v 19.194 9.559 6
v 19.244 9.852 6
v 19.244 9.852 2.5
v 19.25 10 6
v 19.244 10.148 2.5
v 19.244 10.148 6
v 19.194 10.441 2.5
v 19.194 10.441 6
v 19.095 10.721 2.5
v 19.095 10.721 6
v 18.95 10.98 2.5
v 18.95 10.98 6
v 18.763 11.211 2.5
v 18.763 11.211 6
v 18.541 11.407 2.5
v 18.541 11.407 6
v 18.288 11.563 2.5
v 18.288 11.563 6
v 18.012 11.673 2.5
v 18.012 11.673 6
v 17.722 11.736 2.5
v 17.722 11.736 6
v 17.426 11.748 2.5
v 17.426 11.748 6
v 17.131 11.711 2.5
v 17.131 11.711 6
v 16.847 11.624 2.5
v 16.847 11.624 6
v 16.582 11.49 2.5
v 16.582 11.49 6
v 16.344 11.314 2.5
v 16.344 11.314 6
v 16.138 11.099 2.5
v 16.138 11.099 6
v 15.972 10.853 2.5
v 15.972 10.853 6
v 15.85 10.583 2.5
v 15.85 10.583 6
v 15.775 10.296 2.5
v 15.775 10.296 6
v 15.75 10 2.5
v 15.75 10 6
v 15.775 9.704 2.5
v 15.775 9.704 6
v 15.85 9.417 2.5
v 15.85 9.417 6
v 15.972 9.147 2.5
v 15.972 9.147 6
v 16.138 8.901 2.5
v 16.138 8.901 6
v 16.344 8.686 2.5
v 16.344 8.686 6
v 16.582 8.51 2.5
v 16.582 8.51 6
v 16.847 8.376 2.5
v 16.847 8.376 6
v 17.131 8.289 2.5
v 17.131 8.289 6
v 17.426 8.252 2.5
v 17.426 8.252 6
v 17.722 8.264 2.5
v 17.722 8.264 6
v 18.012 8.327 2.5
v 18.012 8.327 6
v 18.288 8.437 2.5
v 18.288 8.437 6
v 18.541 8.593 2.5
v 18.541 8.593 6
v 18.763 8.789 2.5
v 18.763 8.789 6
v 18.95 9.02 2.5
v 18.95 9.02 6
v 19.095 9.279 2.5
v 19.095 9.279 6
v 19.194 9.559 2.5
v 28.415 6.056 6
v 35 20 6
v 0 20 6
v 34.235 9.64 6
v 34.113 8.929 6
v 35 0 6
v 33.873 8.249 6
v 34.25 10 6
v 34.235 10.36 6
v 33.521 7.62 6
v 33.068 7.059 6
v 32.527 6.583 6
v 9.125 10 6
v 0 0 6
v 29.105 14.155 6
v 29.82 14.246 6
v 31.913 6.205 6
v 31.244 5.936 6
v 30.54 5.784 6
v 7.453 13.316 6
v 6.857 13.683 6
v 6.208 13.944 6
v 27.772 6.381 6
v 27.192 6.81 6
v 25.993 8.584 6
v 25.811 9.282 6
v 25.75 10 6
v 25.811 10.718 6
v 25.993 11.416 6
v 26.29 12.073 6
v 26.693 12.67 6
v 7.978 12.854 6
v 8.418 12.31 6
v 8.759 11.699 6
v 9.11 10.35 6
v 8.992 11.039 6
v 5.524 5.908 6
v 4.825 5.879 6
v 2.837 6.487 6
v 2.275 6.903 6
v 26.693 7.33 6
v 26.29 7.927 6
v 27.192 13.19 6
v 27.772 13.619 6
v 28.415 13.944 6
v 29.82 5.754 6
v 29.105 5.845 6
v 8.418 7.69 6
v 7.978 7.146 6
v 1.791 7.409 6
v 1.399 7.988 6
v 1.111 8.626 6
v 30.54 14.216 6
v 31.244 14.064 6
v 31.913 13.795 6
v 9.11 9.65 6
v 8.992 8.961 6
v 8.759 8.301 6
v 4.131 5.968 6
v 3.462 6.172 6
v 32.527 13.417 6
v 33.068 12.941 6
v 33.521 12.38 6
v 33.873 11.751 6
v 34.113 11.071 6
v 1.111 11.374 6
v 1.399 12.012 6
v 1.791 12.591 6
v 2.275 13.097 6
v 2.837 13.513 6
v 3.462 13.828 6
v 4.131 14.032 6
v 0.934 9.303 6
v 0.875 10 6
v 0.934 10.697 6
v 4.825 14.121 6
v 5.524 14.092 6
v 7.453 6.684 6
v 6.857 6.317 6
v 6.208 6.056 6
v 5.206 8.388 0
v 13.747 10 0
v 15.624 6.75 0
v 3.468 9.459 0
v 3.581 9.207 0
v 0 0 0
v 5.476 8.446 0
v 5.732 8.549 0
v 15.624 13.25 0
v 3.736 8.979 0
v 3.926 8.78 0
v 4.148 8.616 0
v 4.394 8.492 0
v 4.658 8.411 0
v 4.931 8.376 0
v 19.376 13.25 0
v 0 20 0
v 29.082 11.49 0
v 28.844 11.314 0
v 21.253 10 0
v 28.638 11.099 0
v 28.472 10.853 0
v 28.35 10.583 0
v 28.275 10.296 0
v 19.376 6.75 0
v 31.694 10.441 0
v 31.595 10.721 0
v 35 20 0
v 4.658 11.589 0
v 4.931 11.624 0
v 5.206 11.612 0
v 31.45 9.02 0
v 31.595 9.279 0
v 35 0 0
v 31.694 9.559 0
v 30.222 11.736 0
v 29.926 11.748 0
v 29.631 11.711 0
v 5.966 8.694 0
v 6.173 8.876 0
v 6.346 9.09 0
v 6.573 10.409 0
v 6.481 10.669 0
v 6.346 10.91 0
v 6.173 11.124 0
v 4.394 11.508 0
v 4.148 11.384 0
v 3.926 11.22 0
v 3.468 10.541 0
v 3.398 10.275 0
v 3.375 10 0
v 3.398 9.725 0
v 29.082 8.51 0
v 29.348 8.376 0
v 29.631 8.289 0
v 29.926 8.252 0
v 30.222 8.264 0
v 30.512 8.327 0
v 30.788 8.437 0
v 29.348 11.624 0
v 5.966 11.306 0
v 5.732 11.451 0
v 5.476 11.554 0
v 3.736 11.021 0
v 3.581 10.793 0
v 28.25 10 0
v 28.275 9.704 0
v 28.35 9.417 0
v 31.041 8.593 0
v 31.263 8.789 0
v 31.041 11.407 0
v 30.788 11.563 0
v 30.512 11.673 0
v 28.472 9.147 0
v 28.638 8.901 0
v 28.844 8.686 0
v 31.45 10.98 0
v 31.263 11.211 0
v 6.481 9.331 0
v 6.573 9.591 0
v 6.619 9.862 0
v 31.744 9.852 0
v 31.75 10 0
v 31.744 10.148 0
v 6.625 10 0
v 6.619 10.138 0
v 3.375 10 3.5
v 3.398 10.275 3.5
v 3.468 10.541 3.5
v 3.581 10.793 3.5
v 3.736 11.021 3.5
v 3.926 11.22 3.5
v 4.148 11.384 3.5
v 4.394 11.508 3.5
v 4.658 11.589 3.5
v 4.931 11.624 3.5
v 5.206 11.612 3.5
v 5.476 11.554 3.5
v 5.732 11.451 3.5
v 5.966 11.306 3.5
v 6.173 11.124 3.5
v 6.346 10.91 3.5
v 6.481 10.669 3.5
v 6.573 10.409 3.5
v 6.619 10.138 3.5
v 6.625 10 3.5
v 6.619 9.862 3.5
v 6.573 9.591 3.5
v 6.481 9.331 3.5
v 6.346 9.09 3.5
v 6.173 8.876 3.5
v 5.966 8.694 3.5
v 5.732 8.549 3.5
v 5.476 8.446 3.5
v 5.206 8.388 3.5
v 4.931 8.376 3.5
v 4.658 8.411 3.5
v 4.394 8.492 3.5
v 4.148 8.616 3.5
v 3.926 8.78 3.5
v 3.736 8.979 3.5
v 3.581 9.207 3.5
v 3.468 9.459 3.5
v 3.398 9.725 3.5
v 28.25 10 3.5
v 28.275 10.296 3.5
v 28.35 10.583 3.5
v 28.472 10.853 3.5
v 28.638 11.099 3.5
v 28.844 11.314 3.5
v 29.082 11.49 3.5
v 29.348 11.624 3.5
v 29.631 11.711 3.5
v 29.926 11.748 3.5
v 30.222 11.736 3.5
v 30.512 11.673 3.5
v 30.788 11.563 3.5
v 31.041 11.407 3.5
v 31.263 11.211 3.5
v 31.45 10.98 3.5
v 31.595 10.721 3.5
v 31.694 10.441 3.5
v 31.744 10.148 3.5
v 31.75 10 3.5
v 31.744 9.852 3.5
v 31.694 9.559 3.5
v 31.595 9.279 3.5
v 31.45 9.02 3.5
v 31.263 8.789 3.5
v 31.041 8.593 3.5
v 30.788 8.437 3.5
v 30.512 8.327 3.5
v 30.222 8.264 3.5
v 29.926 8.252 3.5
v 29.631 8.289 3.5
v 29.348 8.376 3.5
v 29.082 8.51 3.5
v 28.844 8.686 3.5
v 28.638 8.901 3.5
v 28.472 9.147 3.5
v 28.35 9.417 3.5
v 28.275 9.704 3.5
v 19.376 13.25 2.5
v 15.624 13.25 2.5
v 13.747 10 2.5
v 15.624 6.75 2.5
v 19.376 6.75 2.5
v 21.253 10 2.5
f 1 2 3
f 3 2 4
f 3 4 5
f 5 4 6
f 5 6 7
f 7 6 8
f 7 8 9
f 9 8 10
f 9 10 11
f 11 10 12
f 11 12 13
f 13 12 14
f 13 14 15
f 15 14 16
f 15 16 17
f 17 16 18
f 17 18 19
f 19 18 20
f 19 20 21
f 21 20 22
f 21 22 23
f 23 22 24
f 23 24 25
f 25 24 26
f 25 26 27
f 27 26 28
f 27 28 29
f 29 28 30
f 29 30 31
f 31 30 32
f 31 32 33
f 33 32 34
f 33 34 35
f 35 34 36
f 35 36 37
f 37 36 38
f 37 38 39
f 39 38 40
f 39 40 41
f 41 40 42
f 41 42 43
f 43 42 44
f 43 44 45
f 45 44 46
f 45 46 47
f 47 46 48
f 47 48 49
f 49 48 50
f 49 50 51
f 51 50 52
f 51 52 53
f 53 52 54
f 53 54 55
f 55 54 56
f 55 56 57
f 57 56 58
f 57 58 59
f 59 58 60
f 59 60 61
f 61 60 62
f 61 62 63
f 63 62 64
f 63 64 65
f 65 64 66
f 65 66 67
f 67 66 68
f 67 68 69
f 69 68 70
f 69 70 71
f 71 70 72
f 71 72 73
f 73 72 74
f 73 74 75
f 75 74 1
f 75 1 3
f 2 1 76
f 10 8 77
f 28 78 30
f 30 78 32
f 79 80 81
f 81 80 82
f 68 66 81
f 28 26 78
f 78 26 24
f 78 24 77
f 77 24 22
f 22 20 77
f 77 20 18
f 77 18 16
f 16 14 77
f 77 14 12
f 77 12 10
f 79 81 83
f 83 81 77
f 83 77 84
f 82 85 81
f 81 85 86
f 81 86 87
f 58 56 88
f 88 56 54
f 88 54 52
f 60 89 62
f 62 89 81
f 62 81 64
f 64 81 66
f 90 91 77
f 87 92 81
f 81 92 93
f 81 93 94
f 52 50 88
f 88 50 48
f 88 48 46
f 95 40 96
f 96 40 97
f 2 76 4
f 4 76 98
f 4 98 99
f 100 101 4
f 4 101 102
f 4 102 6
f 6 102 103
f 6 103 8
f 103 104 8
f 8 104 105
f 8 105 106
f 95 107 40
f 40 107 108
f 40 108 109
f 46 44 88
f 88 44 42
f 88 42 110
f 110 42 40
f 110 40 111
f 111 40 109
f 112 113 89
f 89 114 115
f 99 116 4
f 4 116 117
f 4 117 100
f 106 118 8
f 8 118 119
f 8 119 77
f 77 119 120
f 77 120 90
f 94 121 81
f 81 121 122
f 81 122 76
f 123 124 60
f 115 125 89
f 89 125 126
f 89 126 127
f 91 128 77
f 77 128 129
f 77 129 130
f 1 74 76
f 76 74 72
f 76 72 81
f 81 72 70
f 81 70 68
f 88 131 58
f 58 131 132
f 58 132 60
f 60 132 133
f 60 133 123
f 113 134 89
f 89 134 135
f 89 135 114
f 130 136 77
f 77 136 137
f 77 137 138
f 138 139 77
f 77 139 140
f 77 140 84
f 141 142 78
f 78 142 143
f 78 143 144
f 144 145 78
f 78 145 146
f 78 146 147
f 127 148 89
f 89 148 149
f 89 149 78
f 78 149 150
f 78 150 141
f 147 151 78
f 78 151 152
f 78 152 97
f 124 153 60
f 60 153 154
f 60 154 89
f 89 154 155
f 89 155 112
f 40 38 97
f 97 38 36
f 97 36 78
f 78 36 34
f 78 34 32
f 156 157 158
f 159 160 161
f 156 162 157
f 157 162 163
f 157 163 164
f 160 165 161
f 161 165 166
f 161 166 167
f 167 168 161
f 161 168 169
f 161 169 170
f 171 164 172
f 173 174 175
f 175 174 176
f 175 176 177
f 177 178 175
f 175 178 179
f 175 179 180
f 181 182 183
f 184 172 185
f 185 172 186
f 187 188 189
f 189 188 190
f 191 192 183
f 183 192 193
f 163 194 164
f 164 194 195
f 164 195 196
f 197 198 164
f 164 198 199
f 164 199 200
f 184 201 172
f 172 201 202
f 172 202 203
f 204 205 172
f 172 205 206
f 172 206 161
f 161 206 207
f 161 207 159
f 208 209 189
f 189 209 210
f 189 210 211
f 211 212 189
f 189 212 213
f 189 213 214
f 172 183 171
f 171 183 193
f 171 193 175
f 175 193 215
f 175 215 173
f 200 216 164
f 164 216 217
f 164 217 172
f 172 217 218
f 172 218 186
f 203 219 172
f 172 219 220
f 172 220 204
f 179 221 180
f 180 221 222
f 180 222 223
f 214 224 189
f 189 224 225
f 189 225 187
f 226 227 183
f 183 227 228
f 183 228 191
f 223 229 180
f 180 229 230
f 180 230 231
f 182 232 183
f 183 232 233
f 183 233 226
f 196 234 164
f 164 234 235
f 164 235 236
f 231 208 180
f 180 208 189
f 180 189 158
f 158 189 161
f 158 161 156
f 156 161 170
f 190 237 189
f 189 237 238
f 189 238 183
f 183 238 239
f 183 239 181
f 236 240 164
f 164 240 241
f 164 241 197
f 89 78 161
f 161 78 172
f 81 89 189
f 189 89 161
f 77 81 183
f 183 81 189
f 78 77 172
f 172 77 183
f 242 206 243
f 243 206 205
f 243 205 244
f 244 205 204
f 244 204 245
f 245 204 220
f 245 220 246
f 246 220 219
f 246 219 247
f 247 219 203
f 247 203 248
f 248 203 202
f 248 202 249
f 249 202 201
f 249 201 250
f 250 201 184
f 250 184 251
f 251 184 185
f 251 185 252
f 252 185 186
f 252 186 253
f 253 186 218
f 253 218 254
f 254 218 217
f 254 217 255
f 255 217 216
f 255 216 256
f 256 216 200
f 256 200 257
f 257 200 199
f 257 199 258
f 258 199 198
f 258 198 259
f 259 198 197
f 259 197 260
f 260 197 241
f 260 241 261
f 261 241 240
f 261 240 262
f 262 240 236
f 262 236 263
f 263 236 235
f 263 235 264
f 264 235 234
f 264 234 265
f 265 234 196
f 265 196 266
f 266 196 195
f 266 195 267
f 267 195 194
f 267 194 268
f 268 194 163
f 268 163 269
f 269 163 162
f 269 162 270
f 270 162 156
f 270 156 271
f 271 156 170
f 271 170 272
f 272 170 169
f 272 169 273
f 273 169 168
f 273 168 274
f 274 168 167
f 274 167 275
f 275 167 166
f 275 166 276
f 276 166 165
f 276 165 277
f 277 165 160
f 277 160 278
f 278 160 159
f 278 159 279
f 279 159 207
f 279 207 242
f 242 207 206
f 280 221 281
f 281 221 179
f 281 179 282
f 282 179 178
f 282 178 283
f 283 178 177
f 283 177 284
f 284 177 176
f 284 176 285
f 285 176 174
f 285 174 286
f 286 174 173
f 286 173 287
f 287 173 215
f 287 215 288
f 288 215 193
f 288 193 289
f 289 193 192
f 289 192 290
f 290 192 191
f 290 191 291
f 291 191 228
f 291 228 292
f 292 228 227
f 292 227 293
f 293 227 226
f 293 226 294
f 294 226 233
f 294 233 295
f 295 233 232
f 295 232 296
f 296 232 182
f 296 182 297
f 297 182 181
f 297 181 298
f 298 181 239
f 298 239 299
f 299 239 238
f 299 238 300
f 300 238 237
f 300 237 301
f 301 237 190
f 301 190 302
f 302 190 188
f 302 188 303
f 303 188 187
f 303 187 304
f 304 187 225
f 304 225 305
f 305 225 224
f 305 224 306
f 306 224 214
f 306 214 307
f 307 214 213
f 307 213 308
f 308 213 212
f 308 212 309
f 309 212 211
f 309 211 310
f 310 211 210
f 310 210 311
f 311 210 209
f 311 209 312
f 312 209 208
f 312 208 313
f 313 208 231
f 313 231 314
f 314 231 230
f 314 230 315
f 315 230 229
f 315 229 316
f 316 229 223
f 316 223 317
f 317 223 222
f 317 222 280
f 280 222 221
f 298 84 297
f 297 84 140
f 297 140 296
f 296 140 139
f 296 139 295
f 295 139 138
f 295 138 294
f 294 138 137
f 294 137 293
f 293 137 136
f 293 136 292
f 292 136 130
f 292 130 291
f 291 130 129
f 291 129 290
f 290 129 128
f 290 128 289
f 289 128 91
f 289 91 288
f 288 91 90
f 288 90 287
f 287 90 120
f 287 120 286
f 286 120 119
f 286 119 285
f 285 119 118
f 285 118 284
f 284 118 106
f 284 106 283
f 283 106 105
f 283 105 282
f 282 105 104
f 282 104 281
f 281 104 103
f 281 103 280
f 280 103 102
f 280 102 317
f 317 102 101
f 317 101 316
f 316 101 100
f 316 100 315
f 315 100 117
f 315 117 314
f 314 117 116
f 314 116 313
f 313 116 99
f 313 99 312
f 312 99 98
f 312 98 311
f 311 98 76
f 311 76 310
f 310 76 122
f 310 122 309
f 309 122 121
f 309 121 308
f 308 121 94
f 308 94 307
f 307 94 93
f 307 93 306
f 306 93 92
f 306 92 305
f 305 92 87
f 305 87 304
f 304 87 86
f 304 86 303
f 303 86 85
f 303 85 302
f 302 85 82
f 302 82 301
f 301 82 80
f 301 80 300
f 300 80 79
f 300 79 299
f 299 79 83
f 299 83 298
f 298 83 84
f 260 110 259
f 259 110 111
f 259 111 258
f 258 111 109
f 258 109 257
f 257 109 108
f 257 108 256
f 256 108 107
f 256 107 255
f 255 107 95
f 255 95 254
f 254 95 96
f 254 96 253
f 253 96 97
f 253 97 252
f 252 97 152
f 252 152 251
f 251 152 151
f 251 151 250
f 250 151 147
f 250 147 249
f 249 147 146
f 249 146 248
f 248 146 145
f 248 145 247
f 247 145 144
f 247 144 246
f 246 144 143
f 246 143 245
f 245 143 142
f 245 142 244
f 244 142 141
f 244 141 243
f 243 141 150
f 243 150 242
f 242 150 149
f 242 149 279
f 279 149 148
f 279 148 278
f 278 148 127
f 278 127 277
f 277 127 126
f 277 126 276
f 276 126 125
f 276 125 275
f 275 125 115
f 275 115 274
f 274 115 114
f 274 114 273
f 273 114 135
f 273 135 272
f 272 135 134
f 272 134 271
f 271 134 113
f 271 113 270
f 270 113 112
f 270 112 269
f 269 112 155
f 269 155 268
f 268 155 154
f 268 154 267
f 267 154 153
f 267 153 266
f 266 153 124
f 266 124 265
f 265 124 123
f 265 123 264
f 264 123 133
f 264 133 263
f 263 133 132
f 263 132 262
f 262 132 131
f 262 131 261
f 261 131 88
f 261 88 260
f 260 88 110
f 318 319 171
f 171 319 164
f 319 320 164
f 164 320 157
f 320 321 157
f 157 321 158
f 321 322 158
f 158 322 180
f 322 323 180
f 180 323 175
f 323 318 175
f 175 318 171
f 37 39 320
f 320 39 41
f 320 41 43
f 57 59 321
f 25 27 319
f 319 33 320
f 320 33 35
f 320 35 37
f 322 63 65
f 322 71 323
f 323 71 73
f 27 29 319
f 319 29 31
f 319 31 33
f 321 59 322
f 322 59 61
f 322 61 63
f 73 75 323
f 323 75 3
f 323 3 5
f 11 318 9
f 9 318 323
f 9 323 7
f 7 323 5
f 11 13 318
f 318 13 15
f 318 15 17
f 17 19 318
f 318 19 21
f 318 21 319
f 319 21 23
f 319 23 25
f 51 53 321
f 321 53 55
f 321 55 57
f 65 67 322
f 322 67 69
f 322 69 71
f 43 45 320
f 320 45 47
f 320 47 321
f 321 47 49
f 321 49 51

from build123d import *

# Parameters (mm, degrees)
SKETCH1_W           = 35
SKETCH1_H           = 20
SKETCH1_R           = 1.625
SKETCH1_R_2         = 1.75
BOSS_EXTRUDE1_DEPTH = 6
CHAMFER1_SIZE       = 2.5
CUT_EXTRUDE1_DEPTH  = 2.5


with BuildPart() as part:
    # Sketch1 → Boss-Extrude1 (new body)
    with BuildSketch(Plane.XY):
        with Locations((17.5, 10)):
            Rectangle(SKETCH1_W, SKETCH1_H)
        with Locations((5, 10)):
            Circle(SKETCH1_R, mode=Mode.SUBTRACT)
        with Locations((30, 10)):
            Circle(SKETCH1_R_2, mode=Mode.SUBTRACT)
        with Locations((17.5, 10)):
            Circle(SKETCH1_R_2, mode=Mode.SUBTRACT)
    extrude(amount=BOSS_EXTRUDE1_DEPTH)

    # Chamfer1
    chamfer1_edges = [part.edges().sort_by_distance(p)[0] for p in [
        (3.375, 10, 6),
        (28.25, 10, 6),
    ]]
    chamfer(chamfer1_edges, length=CHAMFER1_SIZE)

    # Sketch2 → Cut-Extrude1 (cut)
    with BuildSketch(Plane(origin=(0, 0, 0), x_dir=(-1, 0, 0), z_dir=(0, 0, -1))):
        Polygon((-19.376388375, 13.25), (-21.25277675, 10), (-19.376388375, 6.75), (-15.623611625, 6.75), (-13.74722325, 10), (-15.623611625, 13.25), align=None)
    extrude(amount=-CUT_EXTRUDE1_DEPTH, mode=Mode.SUBTRACT)


solid = part.part
